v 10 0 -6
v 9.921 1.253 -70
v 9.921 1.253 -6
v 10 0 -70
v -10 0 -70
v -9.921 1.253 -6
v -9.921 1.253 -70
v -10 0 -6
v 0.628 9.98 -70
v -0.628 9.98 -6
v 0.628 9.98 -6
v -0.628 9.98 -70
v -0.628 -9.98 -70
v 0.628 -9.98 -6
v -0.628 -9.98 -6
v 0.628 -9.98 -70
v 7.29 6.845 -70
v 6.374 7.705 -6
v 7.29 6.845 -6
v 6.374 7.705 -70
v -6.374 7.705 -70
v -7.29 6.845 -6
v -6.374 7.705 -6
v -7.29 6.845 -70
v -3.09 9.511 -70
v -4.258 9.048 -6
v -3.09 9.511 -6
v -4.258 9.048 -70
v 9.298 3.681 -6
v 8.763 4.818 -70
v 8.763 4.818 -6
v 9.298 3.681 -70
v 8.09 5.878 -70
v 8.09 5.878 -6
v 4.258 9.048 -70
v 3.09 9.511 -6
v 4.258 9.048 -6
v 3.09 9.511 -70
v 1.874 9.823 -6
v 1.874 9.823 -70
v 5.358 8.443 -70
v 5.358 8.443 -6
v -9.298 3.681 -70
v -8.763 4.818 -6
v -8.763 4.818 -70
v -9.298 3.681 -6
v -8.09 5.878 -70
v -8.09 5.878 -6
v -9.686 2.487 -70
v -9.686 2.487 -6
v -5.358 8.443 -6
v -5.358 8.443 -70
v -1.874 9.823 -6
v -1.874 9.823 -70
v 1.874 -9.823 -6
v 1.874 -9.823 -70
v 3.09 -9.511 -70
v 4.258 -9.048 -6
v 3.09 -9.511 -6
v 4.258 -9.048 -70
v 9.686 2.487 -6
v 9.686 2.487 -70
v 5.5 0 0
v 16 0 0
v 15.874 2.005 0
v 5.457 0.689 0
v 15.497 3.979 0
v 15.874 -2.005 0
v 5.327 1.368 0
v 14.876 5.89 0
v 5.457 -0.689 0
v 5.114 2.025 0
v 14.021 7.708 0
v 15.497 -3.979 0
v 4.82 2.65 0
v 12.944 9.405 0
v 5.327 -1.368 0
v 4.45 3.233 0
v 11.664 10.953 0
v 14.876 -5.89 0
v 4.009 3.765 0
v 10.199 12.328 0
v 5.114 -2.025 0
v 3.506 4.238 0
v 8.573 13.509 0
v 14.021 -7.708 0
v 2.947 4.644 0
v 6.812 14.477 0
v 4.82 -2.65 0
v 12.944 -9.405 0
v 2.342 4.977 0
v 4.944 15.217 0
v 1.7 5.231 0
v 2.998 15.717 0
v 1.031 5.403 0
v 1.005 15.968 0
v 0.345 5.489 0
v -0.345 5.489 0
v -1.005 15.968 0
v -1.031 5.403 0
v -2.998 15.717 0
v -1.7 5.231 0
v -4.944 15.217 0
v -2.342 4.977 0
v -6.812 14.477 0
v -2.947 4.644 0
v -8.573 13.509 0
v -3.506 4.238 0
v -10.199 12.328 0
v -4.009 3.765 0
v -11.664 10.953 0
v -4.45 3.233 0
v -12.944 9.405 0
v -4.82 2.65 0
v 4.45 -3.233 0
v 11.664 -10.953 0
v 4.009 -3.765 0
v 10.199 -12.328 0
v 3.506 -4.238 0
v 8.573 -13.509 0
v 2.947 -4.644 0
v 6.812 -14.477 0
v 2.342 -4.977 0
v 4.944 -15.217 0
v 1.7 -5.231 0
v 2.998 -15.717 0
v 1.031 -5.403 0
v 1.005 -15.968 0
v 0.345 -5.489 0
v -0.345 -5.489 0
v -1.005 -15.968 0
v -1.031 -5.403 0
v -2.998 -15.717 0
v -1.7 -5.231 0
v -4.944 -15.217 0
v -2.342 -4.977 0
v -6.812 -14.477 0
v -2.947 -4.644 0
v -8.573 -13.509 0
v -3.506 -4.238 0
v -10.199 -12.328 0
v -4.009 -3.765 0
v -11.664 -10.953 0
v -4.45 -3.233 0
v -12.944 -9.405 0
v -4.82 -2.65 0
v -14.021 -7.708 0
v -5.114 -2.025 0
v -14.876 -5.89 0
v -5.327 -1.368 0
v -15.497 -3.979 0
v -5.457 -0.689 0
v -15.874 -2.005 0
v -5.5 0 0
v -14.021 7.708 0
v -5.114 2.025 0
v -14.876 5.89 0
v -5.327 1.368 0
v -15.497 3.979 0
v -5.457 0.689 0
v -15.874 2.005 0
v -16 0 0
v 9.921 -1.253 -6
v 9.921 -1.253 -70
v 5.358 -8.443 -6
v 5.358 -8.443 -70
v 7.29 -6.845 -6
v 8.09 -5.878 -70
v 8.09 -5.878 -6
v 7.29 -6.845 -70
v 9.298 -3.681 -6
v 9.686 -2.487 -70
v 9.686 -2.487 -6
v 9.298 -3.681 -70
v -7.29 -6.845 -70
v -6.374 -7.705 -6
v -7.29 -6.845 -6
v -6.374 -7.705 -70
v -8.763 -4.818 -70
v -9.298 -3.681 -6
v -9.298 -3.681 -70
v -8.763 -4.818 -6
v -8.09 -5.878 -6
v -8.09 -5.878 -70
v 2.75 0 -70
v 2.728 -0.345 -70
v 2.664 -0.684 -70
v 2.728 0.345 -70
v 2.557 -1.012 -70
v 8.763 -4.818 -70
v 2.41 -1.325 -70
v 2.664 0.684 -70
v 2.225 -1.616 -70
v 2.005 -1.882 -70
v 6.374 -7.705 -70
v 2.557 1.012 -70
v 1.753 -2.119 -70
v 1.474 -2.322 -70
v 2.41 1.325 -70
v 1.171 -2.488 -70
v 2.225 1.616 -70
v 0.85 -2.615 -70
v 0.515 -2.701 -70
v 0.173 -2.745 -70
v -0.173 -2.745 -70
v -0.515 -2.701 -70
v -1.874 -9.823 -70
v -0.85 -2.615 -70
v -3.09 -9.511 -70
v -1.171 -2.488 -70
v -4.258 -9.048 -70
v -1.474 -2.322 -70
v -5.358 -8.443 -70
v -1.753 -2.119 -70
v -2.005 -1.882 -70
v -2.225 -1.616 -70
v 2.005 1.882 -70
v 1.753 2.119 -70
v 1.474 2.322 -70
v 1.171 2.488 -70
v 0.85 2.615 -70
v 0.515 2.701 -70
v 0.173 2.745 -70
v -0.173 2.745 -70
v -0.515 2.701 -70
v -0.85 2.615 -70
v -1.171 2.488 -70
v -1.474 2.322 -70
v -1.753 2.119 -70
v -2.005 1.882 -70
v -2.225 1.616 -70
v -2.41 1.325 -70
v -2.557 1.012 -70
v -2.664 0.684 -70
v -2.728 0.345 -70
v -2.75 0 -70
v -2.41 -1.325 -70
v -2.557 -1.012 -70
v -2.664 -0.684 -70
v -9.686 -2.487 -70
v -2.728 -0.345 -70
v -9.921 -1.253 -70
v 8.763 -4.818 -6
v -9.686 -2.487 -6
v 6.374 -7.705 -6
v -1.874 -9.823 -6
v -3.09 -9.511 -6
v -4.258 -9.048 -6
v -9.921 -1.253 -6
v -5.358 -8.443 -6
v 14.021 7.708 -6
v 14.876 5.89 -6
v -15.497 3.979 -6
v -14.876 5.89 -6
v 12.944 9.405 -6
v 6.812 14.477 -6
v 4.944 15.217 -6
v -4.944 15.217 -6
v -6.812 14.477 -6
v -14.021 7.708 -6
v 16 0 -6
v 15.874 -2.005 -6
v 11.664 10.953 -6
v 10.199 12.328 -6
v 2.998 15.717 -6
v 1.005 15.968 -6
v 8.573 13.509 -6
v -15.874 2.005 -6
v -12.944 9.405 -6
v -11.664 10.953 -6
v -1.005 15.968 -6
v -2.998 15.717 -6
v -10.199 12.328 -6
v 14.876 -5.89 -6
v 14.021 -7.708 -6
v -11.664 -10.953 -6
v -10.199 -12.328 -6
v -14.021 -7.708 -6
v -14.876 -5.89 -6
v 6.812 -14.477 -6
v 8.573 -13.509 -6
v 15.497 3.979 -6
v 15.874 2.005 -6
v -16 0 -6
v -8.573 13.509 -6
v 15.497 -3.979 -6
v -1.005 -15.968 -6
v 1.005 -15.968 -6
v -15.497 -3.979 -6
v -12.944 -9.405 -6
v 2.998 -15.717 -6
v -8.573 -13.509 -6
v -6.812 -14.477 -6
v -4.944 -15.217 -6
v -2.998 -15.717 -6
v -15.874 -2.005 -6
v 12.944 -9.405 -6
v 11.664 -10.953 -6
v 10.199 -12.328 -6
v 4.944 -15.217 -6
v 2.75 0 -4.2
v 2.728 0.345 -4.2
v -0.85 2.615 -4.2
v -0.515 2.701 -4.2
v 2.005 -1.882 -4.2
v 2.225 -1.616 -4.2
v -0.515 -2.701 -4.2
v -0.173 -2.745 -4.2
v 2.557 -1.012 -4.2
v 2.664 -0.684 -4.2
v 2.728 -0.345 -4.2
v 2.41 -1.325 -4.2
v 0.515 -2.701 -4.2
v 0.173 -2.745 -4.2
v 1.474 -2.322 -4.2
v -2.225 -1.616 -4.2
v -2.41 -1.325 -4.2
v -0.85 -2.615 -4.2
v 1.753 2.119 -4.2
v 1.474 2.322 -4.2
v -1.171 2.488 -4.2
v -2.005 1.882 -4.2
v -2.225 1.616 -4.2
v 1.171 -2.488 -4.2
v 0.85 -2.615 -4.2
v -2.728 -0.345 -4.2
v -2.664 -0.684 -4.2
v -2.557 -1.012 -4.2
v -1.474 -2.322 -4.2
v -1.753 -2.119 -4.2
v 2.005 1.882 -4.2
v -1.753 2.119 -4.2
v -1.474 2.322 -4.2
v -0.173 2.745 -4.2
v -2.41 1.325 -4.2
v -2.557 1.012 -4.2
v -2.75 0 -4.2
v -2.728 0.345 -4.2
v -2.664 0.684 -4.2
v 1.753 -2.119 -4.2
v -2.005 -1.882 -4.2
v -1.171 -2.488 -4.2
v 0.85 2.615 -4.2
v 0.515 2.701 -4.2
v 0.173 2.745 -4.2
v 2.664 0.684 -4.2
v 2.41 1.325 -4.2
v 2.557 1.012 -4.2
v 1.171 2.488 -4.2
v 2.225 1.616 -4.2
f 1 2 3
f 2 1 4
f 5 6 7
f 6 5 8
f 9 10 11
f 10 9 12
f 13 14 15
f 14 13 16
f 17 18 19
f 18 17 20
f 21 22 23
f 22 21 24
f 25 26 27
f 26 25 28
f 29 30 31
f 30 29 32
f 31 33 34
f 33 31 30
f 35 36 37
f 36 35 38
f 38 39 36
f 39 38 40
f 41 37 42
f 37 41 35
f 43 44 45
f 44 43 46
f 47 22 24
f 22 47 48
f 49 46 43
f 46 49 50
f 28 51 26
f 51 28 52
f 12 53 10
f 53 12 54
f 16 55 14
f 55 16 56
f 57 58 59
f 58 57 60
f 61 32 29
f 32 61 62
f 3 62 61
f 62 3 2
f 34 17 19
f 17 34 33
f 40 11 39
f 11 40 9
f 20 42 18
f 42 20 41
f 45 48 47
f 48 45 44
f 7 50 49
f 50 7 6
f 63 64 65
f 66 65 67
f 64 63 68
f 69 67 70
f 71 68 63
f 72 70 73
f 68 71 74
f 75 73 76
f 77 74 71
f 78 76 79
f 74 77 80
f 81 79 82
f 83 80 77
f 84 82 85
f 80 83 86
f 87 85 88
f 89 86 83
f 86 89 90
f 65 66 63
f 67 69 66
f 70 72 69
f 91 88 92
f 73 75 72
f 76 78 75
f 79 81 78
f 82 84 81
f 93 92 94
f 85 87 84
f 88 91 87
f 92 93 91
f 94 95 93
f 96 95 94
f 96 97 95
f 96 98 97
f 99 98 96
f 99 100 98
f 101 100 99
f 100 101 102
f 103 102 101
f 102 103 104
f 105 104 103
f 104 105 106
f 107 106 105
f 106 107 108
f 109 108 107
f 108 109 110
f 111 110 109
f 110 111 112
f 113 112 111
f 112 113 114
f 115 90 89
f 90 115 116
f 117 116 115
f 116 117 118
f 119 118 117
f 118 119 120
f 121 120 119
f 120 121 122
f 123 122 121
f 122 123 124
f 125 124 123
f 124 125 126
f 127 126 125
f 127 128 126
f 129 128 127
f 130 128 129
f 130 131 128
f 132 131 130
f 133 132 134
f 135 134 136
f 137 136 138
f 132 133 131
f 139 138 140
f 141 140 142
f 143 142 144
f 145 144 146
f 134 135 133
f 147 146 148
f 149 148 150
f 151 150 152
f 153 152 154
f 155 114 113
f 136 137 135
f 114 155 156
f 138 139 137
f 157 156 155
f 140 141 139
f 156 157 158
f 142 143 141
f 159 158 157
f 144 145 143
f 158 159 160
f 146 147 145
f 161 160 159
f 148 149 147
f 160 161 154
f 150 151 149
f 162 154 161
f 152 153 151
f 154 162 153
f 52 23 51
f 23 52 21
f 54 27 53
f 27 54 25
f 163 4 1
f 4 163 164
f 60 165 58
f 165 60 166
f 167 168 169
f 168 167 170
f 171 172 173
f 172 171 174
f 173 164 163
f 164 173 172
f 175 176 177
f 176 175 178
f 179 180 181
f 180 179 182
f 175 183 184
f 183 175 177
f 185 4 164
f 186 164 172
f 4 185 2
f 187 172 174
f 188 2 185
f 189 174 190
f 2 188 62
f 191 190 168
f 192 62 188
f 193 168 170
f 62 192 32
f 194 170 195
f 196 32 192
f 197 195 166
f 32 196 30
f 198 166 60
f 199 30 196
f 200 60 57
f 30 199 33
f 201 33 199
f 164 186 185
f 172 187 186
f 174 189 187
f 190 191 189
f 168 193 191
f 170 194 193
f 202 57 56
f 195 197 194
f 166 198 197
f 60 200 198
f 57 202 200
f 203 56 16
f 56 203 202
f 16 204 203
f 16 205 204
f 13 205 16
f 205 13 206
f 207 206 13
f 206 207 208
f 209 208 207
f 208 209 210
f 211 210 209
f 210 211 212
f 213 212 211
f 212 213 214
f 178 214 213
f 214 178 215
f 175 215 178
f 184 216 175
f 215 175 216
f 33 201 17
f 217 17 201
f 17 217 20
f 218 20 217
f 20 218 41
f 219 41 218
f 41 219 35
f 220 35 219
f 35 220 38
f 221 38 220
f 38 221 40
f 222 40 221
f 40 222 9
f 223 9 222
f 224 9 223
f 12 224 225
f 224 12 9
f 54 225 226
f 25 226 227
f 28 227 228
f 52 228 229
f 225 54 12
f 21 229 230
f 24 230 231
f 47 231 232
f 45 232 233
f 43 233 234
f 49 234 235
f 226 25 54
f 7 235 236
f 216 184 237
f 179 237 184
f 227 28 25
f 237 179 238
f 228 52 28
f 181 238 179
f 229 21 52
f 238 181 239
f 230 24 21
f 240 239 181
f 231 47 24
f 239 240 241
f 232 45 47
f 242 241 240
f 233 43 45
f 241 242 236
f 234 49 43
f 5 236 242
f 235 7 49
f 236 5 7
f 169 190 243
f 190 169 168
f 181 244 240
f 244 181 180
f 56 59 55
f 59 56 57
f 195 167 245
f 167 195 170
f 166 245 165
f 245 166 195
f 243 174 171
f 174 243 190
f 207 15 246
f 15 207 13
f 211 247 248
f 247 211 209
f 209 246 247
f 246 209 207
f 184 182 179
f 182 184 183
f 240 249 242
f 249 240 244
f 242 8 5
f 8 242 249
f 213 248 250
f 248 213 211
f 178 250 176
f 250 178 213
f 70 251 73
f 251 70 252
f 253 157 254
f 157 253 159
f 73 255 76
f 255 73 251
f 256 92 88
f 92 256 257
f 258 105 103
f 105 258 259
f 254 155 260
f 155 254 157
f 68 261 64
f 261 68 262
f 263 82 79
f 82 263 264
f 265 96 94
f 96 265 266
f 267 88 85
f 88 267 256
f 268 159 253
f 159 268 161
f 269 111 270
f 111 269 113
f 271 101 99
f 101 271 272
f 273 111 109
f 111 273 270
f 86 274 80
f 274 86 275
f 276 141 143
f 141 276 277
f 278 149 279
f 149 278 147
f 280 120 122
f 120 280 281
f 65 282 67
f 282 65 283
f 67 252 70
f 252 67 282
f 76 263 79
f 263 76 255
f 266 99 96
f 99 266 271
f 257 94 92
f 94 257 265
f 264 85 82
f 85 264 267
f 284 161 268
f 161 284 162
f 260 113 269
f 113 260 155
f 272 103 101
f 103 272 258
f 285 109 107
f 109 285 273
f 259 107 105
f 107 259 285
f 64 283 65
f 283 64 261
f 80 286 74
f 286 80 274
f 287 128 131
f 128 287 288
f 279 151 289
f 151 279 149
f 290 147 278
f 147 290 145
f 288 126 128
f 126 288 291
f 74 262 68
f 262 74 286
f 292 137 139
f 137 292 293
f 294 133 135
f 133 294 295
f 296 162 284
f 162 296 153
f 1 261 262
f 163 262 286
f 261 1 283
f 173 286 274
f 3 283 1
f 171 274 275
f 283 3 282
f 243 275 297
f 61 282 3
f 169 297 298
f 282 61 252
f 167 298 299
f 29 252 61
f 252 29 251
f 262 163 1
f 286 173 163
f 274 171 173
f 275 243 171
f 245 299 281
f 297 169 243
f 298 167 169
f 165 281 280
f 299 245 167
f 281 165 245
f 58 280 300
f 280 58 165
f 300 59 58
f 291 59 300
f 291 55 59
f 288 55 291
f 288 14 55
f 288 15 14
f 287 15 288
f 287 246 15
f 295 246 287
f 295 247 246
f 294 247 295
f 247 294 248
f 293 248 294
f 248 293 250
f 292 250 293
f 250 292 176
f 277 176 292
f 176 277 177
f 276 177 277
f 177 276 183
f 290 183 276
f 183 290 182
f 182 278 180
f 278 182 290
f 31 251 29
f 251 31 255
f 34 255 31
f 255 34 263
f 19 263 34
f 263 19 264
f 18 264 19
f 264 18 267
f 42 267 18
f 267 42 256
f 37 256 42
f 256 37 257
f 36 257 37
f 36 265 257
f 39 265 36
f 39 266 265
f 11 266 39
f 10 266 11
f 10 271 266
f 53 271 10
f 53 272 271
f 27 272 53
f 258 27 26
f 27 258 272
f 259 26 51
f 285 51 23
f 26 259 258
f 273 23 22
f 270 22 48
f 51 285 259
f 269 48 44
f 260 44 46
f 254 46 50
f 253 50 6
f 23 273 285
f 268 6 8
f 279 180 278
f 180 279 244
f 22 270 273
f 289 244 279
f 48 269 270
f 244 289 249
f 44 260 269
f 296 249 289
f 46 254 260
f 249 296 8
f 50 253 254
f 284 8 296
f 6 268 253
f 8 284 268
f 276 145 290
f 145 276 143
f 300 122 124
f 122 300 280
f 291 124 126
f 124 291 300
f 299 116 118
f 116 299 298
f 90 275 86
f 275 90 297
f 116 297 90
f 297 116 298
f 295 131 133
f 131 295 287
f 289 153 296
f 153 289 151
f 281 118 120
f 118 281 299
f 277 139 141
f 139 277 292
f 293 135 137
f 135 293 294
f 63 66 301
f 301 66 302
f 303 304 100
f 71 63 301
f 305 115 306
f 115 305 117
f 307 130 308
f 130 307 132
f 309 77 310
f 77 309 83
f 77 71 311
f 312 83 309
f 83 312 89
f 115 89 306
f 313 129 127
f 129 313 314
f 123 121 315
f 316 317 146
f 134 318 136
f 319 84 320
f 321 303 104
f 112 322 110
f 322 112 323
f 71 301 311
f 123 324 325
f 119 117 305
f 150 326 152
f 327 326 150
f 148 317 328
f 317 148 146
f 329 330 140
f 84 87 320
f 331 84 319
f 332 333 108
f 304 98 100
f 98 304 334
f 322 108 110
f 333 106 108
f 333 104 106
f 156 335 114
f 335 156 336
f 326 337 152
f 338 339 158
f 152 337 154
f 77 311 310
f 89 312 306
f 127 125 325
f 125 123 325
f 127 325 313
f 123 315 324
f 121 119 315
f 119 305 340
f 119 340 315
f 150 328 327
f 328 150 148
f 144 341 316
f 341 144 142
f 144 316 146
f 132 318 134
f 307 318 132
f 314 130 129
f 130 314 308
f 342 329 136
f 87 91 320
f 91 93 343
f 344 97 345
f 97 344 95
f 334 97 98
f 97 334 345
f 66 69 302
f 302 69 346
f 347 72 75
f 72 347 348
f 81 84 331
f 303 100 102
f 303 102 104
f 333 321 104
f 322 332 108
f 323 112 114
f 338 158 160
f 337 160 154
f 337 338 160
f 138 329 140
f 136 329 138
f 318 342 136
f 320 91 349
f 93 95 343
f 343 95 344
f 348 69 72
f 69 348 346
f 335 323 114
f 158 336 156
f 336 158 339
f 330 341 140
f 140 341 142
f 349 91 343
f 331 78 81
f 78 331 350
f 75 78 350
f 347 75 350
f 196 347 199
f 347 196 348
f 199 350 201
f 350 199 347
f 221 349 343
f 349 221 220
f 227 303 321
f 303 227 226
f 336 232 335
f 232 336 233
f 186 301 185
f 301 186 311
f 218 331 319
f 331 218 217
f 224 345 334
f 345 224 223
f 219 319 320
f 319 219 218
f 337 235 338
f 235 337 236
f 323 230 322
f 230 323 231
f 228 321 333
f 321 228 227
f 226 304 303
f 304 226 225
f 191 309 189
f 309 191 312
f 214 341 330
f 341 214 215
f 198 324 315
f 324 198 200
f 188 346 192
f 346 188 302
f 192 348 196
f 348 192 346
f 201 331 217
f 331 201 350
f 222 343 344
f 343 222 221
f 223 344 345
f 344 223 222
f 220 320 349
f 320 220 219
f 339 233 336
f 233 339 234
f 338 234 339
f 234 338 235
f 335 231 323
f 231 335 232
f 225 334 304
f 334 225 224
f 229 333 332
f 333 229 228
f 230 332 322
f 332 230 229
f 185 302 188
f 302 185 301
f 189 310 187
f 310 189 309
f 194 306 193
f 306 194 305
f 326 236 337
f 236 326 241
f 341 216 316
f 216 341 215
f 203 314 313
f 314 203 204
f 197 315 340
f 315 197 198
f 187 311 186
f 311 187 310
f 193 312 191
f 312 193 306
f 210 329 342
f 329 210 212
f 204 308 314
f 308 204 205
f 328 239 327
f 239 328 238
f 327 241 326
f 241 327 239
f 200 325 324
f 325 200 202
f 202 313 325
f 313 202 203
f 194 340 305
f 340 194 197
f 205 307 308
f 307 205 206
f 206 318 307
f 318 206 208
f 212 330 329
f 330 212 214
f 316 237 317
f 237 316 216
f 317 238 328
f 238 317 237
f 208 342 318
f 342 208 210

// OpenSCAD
$fn = 50;


difference() {
	union() {
		translate(v = [0, 0, -70.0000000000]) {
			cylinder(h = 70, r = 10.0000000000);
		}
		translate(v = [0, 0, -6.0000000000]) {
			cylinder(h = 6, r = 16.0000000000);
		}
	}
	union() {
		translate(v = [0, 0, 0]) {
			rotate(a = [0, 0, 0]) {
				difference() {
					union() {
						#translate(v = [0, 0, -70.0000000000]) {
							cylinder(h = 70, r = 2.2500000000);
						}
						#translate(v = [0, 0, -4.2000000000]) {
							cylinder(h = 4.2000000000, r = 10.0000000000, r1 = 2.7500000000, r2 = 5.5000000000);
						}
						#translate(v = [0, 0, -70.0000000000]) {
							cylinder(h = 70, r = 2.7500000000);
						}
						#translate(v = [0, 0, -70.0000000000]) {
							cylinder(h = 70, r = 2.2500000000);
						}
					}
					union();
				}
			}
		}
	}
}
